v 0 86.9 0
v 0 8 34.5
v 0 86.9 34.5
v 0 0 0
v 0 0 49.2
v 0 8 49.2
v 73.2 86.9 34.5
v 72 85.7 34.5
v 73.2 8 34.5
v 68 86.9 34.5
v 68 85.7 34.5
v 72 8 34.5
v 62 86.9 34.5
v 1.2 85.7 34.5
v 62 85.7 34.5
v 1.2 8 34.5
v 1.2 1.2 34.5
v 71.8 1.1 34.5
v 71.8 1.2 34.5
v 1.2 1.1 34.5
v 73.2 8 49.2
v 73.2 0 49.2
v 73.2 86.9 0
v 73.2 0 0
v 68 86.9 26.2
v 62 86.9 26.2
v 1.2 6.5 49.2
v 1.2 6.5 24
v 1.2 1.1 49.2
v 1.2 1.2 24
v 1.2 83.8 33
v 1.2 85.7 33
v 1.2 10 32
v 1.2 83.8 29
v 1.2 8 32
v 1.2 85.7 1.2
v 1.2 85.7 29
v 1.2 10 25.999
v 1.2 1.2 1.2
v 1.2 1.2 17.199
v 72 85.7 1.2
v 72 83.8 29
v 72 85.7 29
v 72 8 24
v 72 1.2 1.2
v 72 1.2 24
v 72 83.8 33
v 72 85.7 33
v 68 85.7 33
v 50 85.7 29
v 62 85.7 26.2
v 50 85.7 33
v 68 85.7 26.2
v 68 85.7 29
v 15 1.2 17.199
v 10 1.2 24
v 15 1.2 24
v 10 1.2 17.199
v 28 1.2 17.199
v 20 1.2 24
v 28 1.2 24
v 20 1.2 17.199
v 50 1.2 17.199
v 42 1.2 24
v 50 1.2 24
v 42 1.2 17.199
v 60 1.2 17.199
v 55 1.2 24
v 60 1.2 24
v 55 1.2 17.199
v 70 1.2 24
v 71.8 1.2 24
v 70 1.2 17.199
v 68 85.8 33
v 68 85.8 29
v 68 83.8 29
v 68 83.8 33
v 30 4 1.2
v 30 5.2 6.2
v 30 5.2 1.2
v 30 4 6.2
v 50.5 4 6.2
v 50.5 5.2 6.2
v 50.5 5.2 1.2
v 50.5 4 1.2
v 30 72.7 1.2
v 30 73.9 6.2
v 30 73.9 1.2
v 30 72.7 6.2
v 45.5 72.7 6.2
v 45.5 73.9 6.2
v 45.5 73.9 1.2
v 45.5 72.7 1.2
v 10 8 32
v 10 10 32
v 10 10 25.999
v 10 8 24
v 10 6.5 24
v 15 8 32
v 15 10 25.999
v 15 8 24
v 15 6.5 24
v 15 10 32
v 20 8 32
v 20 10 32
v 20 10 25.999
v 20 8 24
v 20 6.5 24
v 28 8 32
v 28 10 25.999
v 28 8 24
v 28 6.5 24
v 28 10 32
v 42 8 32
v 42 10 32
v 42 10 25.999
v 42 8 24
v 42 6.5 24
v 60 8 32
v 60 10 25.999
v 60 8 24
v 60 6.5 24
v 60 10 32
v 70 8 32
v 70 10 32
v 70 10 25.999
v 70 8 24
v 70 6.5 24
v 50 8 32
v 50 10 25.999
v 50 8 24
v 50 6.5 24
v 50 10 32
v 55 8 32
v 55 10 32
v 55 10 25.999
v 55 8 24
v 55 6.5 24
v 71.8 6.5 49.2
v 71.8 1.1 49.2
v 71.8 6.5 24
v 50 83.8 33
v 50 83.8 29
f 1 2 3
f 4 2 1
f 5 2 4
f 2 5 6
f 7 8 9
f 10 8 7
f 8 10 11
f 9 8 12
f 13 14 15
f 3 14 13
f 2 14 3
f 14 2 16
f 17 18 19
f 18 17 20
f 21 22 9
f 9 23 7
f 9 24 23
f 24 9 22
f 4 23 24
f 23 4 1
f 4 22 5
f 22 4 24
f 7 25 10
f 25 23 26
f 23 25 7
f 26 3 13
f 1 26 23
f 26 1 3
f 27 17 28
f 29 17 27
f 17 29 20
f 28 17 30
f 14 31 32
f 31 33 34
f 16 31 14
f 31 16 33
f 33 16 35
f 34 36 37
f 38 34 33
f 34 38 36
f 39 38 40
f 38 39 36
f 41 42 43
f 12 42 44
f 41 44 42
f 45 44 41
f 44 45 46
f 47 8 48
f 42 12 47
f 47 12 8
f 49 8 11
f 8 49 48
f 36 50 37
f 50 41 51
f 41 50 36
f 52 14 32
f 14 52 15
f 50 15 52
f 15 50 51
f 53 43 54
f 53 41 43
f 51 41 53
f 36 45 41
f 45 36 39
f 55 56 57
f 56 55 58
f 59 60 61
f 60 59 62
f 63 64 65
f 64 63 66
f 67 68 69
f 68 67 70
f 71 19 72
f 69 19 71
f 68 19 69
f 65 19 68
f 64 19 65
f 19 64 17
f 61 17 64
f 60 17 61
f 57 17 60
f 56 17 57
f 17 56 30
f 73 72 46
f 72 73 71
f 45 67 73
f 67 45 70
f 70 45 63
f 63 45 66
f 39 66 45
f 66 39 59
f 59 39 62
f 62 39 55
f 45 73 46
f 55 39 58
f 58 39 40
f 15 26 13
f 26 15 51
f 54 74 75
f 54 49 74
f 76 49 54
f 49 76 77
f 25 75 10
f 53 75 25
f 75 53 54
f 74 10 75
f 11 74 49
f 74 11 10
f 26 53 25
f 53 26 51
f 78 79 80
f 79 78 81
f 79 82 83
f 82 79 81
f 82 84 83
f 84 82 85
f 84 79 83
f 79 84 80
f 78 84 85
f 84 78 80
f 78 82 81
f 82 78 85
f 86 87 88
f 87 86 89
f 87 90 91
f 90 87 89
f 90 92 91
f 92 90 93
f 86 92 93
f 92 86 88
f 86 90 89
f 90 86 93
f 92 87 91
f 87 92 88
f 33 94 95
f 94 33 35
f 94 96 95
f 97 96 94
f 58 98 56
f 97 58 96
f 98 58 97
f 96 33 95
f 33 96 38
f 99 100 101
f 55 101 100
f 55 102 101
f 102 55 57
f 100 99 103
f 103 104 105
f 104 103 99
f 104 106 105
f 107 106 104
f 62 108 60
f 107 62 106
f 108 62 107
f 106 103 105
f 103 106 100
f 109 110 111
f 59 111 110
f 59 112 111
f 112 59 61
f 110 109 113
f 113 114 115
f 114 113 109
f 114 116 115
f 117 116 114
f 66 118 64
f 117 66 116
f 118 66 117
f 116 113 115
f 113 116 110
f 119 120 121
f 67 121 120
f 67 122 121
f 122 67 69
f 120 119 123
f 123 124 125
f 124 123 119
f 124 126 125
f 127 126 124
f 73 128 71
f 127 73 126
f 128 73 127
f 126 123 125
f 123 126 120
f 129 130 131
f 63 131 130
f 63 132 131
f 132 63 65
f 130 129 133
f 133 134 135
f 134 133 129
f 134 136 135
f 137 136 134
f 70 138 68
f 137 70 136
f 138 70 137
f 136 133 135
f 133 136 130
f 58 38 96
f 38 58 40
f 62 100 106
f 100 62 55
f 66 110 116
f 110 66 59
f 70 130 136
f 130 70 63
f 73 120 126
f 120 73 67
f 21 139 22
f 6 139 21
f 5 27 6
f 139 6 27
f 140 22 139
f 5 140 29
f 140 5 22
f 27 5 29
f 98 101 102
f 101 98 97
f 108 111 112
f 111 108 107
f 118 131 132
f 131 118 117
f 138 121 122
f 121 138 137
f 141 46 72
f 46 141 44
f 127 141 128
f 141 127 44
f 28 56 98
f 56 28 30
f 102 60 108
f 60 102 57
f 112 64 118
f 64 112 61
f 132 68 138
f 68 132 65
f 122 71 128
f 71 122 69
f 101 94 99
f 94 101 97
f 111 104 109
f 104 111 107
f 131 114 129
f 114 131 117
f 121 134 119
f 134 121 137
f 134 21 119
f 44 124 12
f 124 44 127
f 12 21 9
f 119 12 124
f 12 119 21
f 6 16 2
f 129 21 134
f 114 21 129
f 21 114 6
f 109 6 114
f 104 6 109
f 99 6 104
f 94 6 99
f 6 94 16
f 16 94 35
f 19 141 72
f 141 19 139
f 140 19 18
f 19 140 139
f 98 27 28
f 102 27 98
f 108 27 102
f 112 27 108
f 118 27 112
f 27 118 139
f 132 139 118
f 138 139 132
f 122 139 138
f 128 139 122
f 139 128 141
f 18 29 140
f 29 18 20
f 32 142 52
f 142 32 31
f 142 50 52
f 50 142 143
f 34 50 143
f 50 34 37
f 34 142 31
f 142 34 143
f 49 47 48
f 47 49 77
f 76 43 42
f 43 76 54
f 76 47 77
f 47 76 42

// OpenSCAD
translate([0,0,0]) union() {
    difference() {
        cube([73.2, 86.9, 34.5]);
        translate([1.2,1.2,1.2]) cube([70.8,84.5, 33.3]);
        translate([62,70,26.2]) cube([6, 50, 8.3]);
    }
    translate([0,4,1.2]) {
        translate([30, 0, 0]) cube([20.5,1.2,5]);
        translate([30, 68.7, 0]) cube([15.5,1.2,5]);
    }
    difference() {
        union() {
            intersection() {
                union() {
                    translate([0,0,0]) cube([10,10,32]);
                    translate([15,0,0]) cube([5,10,32]);
                    translate([28,0,0]) cube([14,10,32]);
                    translate([60,0,0]) cube([10,10,32]);
                    translate([50,0,0]) cube([5,10,32]);
                }
                translate([0,-14,30]) {
                    rotate([-45,0,0]) cube([73.2,19.8,19.8]);
                }
            }
            translate([0,0,24]) {
                cube([73.2,8,25.2]);
                translate([65.2,0,0]) cube([8,8,1.6]);
                
            }
        }
        translate([1.2,1.1,24]) cube([70.6,5.4,25.2]);
    }
    translate([0,83.8,29]) cube([50,2,4]);
    translate([68,83.8,29]) cube([5,2,4]);
}



translate([0,0,0]) intersection() {
    cube([0, 0, 0]);
    difference() {
        union() {
            cube([74, 56.6, 85]);
        }
        
        translate([1.6,1.6,2]) cube([70.8, 28.2, 83]);
        translate([1.6,31.8,2]) cube([70.8, 2, 83]);
        translate([3,1.6,2]) cube([68, 33.8, 83]);
        translate([1.6,35.4,2]) cube([10, 15, 83]);
        translate([62.4,35.4,2]) cube([10, 15, 83]);
        translate([13.2, 37, 2]) cube([47.6, 15, 83]);
        translate([1.6, 47, 2]) cube([67.5,8,85]);
        translate([70.7, 47, 2]) cube([1.7,8,85]);
        
        translate([5,1.6, 44]) cube([64,53.4,43]);
        translate([1.6, 47, 37]) cube([70.8,8,50]);
    }
}
